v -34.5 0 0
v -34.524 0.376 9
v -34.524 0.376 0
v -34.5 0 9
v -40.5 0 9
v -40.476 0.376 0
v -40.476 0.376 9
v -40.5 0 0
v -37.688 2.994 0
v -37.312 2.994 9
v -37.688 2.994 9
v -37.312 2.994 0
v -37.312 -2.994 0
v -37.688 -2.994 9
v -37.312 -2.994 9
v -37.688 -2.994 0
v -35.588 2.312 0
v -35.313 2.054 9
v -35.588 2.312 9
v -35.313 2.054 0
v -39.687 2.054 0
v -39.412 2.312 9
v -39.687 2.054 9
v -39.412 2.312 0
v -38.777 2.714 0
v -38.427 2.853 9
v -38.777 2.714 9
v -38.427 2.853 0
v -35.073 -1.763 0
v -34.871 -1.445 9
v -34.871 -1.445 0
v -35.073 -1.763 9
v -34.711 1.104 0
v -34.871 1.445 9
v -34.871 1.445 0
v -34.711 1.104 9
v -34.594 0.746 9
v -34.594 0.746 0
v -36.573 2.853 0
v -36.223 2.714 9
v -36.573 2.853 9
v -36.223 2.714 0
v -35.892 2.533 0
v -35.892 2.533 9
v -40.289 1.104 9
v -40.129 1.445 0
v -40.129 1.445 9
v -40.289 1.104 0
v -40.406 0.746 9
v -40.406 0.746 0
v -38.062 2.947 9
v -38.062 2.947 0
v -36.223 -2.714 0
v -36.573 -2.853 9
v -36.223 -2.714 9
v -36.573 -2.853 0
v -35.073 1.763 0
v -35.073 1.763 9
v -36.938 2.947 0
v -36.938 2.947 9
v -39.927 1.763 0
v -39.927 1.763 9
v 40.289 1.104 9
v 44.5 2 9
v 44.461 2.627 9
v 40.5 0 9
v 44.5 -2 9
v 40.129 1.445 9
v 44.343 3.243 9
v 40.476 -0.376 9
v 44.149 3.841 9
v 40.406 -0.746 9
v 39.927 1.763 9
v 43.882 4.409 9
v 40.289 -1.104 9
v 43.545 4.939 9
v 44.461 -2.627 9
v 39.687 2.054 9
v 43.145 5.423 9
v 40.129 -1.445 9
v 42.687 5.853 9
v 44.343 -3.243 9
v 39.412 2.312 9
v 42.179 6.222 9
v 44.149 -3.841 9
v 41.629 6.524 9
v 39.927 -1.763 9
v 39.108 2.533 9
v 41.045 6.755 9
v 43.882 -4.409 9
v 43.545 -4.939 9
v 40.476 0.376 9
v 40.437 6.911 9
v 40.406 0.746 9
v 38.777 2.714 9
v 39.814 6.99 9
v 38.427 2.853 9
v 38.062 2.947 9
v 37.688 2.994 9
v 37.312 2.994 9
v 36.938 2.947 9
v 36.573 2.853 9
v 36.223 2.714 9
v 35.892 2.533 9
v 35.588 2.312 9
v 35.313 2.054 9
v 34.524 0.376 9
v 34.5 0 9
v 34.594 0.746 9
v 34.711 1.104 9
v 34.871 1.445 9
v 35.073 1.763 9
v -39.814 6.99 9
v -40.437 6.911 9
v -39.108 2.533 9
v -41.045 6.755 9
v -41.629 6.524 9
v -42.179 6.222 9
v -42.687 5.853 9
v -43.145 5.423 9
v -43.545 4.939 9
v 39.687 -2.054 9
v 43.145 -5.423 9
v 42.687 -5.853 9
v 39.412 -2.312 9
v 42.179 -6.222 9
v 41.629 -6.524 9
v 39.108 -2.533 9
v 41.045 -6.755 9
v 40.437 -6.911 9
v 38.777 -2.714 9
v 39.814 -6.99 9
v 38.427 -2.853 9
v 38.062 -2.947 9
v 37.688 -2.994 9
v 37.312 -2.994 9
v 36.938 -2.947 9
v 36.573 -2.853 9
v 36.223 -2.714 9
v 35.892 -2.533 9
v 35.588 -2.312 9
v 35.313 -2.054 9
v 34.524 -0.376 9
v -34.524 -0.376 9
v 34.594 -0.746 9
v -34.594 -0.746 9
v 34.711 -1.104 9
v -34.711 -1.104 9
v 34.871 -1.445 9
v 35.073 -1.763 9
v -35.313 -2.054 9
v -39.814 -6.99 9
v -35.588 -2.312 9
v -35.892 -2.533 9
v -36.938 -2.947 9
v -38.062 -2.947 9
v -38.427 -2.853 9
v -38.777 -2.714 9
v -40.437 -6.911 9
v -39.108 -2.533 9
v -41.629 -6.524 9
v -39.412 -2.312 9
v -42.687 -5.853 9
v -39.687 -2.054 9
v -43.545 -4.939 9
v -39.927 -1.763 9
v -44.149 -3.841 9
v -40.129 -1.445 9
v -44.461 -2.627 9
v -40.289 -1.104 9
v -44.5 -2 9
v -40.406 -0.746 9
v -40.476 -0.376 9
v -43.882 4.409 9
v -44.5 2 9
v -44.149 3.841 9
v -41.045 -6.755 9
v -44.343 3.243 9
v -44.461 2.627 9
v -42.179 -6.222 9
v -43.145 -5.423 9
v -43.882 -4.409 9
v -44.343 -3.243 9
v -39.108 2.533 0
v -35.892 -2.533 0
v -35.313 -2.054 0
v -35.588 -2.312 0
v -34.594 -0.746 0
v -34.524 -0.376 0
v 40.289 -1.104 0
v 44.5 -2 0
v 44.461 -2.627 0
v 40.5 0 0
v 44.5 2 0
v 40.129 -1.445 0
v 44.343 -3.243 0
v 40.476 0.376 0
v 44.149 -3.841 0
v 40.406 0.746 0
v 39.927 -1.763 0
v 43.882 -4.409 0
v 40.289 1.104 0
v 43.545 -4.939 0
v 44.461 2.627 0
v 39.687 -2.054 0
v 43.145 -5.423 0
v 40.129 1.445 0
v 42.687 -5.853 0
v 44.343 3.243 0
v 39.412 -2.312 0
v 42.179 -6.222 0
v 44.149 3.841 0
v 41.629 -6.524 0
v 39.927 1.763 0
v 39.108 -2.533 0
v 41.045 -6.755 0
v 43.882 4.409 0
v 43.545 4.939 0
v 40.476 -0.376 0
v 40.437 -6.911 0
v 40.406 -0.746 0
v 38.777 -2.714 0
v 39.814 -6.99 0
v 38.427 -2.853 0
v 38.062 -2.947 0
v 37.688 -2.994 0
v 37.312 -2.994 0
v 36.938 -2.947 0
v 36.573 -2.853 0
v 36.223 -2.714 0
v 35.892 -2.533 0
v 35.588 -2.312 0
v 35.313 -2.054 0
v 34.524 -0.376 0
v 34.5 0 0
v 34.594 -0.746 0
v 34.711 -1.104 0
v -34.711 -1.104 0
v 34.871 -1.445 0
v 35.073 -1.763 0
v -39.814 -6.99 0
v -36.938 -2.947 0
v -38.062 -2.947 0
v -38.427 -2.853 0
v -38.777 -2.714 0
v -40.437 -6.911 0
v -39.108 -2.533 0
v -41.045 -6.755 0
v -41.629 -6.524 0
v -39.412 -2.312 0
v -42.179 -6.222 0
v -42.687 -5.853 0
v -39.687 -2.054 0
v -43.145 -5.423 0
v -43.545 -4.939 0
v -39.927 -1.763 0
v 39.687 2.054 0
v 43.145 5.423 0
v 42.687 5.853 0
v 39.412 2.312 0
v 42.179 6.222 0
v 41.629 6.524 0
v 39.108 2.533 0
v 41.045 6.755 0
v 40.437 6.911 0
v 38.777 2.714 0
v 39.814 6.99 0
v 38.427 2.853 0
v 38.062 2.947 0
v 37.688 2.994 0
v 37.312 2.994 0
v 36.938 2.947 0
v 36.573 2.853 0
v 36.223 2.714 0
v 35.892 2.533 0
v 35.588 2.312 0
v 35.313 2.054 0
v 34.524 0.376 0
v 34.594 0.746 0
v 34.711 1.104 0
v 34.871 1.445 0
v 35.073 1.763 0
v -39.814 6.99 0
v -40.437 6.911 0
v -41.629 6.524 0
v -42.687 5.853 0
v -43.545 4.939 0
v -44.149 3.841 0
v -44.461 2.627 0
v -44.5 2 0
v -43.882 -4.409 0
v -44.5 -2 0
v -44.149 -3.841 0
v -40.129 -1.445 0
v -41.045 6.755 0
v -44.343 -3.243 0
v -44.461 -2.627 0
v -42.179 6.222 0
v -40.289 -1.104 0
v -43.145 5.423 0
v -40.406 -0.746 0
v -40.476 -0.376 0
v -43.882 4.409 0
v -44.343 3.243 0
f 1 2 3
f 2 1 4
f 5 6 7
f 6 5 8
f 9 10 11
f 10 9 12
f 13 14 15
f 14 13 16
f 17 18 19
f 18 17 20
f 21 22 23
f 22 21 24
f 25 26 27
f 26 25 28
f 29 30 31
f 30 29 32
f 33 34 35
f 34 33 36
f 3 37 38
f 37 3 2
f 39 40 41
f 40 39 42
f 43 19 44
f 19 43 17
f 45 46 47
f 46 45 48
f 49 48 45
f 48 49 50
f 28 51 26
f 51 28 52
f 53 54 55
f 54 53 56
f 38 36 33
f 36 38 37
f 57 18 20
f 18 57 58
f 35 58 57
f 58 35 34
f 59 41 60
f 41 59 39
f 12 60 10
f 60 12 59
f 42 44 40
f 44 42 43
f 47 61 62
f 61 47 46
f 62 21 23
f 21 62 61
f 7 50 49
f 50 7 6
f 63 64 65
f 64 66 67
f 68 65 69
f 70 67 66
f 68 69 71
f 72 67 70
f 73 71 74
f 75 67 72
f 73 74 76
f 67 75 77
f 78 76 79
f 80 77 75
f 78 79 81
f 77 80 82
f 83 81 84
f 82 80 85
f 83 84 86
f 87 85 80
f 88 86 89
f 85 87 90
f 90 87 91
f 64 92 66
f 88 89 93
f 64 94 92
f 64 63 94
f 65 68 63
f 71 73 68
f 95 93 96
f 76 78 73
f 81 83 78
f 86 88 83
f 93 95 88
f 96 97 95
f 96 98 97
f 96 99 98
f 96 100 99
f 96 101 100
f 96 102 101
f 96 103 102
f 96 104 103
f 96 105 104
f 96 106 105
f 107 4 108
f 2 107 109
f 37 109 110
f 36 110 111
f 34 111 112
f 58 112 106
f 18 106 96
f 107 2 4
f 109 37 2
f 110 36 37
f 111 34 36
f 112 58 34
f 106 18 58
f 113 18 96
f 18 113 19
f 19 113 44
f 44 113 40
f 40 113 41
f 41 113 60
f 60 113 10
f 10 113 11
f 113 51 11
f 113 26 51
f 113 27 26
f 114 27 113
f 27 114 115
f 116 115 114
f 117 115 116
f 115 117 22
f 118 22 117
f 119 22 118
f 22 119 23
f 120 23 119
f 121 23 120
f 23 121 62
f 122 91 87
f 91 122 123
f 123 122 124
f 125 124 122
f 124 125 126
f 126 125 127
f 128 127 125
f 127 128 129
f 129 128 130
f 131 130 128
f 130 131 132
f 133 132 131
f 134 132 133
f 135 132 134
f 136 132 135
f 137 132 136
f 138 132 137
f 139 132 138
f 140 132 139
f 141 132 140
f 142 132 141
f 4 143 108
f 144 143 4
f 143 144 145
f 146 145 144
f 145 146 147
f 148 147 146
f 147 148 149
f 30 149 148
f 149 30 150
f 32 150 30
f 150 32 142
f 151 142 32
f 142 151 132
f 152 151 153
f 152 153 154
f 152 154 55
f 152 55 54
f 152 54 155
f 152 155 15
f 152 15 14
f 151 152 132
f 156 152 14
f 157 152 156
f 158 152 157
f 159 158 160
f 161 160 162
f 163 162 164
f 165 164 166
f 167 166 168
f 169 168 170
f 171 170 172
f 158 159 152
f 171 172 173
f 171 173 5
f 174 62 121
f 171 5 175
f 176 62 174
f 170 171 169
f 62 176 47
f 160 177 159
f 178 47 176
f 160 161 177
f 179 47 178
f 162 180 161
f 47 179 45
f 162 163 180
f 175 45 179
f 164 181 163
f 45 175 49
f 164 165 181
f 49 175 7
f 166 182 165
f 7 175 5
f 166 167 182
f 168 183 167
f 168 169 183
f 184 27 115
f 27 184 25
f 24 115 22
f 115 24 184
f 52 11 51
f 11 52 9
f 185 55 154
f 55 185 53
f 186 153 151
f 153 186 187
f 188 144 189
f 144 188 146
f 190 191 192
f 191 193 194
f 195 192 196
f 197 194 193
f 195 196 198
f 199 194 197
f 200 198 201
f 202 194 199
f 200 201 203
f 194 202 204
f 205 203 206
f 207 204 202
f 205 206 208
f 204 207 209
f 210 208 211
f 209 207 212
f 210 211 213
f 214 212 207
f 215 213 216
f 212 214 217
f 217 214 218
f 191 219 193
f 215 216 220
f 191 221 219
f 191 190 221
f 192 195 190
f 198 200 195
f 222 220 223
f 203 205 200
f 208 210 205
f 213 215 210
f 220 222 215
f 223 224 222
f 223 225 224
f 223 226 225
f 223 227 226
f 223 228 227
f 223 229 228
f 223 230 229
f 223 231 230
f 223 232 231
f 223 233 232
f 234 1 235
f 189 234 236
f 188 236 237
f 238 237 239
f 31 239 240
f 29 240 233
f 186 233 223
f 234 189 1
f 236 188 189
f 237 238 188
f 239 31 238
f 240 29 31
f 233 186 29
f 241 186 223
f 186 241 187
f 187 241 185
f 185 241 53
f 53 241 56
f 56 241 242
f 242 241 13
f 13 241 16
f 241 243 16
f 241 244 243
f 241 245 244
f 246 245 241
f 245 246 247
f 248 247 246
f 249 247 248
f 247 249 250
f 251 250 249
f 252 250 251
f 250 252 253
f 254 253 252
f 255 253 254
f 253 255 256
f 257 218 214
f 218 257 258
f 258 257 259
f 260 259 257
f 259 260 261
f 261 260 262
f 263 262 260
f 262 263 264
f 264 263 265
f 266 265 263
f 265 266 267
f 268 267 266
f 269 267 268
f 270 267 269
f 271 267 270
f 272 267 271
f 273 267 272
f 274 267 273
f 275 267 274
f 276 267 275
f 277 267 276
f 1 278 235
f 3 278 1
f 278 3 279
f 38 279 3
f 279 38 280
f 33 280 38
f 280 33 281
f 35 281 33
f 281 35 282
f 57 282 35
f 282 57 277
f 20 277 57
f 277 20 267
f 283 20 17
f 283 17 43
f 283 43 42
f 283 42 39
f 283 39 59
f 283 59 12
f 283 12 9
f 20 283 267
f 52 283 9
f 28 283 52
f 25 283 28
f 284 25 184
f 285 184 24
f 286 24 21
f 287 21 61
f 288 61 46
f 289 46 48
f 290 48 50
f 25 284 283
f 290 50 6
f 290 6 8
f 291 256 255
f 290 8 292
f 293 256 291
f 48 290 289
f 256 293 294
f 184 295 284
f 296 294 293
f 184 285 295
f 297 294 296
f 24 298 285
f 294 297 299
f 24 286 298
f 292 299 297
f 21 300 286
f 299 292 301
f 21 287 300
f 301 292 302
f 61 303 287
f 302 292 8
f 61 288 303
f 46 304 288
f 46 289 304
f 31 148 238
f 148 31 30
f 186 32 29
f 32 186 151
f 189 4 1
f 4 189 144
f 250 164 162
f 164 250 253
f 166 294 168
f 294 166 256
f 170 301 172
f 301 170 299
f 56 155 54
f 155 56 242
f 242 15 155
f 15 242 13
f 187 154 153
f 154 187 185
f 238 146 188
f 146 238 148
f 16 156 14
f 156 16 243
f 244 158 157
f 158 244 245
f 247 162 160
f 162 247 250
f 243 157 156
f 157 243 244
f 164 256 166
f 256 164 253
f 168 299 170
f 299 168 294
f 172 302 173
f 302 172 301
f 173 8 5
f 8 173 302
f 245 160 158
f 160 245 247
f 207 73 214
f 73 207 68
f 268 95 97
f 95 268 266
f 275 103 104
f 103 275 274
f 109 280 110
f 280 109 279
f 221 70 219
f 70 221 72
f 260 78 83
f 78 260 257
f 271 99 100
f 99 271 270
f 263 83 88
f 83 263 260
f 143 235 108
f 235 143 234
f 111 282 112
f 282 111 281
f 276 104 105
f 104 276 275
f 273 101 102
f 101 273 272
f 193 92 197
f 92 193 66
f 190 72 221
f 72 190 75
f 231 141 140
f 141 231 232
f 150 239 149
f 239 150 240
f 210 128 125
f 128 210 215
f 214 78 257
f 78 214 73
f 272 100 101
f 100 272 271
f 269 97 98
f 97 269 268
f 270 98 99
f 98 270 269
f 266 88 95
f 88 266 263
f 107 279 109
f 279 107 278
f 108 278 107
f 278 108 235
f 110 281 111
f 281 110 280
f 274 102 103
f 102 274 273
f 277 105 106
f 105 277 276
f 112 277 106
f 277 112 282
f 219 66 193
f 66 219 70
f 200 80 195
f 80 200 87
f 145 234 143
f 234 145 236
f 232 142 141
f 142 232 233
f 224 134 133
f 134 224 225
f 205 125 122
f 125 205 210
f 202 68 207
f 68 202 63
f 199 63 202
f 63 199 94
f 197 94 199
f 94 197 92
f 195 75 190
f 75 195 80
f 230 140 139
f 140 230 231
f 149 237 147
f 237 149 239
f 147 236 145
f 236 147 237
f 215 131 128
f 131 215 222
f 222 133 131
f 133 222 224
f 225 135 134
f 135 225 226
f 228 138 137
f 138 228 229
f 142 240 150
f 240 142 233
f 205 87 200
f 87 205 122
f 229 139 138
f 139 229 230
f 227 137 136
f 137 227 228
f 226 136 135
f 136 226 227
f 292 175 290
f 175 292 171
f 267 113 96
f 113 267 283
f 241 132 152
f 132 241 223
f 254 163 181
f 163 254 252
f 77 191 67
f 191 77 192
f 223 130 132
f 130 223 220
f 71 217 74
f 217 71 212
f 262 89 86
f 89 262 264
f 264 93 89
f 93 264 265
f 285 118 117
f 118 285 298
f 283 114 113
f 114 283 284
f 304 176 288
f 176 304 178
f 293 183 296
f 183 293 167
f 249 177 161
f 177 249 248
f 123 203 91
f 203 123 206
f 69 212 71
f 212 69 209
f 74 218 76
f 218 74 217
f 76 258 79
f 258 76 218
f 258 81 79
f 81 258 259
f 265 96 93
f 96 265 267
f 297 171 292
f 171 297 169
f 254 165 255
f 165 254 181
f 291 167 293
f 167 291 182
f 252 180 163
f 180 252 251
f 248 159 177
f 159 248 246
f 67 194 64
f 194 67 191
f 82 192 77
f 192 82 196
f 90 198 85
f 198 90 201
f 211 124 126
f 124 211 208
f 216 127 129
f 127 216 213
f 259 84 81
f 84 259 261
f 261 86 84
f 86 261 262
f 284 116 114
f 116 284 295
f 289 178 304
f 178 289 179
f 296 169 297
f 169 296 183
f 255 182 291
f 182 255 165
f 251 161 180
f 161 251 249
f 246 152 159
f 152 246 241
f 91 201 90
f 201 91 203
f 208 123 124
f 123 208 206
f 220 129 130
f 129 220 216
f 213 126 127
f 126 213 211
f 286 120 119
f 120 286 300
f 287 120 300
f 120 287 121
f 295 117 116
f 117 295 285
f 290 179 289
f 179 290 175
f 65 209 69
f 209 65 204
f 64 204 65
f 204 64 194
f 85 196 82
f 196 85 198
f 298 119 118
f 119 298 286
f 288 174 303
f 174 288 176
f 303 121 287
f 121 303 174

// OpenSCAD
$fn = 50;


difference() {
	union() {
		hull() {
			translate(v = [-39.5000000000, 2.0000000000, 0]) {
				cylinder(h = 9, r = 5);
			}
			translate(v = [39.5000000000, 2.0000000000, 0]) {
				cylinder(h = 9, r = 5);
			}
			translate(v = [-39.5000000000, -2.0000000000, 0]) {
				cylinder(h = 9, r = 5);
			}
			translate(v = [39.5000000000, -2.0000000000, 0]) {
				cylinder(h = 9, r = 5);
			}
		}
	}
	union() {
		translate(v = [-37.5000000000, 0.0000000000, 0]) {
			cylinder(h = 9, r = 3.0000000000);
		}
		translate(v = [37.5000000000, 0.0000000000, 0]) {
			cylinder(h = 9, r = 3.0000000000);
		}
		translate(v = [-37.5000000000, 0.0000000000, 0]) {
			cylinder(h = 9, r = 1.5000000000);
		}
		translate(v = [37.5000000000, 0.0000000000, 0]) {
			cylinder(h = 9, r = 1.5000000000);
		}
		translate(v = [-37.5000000000, 0.0000000000, 0]) {
			cylinder(h = 9, r = 1.5000000000);
		}
		translate(v = [37.5000000000, 0.0000000000, 0]) {
			cylinder(h = 9, r = 1.5000000000);
		}
		translate(v = [-37.5000000000, 0.0000000000, 0]) {
			cylinder(h = 9, r = 1.5000000000);
		}
		translate(v = [37.5000000000, 0.0000000000, 0]) {
			cylinder(h = 9, r = 1.5000000000);
		}
	}
}
